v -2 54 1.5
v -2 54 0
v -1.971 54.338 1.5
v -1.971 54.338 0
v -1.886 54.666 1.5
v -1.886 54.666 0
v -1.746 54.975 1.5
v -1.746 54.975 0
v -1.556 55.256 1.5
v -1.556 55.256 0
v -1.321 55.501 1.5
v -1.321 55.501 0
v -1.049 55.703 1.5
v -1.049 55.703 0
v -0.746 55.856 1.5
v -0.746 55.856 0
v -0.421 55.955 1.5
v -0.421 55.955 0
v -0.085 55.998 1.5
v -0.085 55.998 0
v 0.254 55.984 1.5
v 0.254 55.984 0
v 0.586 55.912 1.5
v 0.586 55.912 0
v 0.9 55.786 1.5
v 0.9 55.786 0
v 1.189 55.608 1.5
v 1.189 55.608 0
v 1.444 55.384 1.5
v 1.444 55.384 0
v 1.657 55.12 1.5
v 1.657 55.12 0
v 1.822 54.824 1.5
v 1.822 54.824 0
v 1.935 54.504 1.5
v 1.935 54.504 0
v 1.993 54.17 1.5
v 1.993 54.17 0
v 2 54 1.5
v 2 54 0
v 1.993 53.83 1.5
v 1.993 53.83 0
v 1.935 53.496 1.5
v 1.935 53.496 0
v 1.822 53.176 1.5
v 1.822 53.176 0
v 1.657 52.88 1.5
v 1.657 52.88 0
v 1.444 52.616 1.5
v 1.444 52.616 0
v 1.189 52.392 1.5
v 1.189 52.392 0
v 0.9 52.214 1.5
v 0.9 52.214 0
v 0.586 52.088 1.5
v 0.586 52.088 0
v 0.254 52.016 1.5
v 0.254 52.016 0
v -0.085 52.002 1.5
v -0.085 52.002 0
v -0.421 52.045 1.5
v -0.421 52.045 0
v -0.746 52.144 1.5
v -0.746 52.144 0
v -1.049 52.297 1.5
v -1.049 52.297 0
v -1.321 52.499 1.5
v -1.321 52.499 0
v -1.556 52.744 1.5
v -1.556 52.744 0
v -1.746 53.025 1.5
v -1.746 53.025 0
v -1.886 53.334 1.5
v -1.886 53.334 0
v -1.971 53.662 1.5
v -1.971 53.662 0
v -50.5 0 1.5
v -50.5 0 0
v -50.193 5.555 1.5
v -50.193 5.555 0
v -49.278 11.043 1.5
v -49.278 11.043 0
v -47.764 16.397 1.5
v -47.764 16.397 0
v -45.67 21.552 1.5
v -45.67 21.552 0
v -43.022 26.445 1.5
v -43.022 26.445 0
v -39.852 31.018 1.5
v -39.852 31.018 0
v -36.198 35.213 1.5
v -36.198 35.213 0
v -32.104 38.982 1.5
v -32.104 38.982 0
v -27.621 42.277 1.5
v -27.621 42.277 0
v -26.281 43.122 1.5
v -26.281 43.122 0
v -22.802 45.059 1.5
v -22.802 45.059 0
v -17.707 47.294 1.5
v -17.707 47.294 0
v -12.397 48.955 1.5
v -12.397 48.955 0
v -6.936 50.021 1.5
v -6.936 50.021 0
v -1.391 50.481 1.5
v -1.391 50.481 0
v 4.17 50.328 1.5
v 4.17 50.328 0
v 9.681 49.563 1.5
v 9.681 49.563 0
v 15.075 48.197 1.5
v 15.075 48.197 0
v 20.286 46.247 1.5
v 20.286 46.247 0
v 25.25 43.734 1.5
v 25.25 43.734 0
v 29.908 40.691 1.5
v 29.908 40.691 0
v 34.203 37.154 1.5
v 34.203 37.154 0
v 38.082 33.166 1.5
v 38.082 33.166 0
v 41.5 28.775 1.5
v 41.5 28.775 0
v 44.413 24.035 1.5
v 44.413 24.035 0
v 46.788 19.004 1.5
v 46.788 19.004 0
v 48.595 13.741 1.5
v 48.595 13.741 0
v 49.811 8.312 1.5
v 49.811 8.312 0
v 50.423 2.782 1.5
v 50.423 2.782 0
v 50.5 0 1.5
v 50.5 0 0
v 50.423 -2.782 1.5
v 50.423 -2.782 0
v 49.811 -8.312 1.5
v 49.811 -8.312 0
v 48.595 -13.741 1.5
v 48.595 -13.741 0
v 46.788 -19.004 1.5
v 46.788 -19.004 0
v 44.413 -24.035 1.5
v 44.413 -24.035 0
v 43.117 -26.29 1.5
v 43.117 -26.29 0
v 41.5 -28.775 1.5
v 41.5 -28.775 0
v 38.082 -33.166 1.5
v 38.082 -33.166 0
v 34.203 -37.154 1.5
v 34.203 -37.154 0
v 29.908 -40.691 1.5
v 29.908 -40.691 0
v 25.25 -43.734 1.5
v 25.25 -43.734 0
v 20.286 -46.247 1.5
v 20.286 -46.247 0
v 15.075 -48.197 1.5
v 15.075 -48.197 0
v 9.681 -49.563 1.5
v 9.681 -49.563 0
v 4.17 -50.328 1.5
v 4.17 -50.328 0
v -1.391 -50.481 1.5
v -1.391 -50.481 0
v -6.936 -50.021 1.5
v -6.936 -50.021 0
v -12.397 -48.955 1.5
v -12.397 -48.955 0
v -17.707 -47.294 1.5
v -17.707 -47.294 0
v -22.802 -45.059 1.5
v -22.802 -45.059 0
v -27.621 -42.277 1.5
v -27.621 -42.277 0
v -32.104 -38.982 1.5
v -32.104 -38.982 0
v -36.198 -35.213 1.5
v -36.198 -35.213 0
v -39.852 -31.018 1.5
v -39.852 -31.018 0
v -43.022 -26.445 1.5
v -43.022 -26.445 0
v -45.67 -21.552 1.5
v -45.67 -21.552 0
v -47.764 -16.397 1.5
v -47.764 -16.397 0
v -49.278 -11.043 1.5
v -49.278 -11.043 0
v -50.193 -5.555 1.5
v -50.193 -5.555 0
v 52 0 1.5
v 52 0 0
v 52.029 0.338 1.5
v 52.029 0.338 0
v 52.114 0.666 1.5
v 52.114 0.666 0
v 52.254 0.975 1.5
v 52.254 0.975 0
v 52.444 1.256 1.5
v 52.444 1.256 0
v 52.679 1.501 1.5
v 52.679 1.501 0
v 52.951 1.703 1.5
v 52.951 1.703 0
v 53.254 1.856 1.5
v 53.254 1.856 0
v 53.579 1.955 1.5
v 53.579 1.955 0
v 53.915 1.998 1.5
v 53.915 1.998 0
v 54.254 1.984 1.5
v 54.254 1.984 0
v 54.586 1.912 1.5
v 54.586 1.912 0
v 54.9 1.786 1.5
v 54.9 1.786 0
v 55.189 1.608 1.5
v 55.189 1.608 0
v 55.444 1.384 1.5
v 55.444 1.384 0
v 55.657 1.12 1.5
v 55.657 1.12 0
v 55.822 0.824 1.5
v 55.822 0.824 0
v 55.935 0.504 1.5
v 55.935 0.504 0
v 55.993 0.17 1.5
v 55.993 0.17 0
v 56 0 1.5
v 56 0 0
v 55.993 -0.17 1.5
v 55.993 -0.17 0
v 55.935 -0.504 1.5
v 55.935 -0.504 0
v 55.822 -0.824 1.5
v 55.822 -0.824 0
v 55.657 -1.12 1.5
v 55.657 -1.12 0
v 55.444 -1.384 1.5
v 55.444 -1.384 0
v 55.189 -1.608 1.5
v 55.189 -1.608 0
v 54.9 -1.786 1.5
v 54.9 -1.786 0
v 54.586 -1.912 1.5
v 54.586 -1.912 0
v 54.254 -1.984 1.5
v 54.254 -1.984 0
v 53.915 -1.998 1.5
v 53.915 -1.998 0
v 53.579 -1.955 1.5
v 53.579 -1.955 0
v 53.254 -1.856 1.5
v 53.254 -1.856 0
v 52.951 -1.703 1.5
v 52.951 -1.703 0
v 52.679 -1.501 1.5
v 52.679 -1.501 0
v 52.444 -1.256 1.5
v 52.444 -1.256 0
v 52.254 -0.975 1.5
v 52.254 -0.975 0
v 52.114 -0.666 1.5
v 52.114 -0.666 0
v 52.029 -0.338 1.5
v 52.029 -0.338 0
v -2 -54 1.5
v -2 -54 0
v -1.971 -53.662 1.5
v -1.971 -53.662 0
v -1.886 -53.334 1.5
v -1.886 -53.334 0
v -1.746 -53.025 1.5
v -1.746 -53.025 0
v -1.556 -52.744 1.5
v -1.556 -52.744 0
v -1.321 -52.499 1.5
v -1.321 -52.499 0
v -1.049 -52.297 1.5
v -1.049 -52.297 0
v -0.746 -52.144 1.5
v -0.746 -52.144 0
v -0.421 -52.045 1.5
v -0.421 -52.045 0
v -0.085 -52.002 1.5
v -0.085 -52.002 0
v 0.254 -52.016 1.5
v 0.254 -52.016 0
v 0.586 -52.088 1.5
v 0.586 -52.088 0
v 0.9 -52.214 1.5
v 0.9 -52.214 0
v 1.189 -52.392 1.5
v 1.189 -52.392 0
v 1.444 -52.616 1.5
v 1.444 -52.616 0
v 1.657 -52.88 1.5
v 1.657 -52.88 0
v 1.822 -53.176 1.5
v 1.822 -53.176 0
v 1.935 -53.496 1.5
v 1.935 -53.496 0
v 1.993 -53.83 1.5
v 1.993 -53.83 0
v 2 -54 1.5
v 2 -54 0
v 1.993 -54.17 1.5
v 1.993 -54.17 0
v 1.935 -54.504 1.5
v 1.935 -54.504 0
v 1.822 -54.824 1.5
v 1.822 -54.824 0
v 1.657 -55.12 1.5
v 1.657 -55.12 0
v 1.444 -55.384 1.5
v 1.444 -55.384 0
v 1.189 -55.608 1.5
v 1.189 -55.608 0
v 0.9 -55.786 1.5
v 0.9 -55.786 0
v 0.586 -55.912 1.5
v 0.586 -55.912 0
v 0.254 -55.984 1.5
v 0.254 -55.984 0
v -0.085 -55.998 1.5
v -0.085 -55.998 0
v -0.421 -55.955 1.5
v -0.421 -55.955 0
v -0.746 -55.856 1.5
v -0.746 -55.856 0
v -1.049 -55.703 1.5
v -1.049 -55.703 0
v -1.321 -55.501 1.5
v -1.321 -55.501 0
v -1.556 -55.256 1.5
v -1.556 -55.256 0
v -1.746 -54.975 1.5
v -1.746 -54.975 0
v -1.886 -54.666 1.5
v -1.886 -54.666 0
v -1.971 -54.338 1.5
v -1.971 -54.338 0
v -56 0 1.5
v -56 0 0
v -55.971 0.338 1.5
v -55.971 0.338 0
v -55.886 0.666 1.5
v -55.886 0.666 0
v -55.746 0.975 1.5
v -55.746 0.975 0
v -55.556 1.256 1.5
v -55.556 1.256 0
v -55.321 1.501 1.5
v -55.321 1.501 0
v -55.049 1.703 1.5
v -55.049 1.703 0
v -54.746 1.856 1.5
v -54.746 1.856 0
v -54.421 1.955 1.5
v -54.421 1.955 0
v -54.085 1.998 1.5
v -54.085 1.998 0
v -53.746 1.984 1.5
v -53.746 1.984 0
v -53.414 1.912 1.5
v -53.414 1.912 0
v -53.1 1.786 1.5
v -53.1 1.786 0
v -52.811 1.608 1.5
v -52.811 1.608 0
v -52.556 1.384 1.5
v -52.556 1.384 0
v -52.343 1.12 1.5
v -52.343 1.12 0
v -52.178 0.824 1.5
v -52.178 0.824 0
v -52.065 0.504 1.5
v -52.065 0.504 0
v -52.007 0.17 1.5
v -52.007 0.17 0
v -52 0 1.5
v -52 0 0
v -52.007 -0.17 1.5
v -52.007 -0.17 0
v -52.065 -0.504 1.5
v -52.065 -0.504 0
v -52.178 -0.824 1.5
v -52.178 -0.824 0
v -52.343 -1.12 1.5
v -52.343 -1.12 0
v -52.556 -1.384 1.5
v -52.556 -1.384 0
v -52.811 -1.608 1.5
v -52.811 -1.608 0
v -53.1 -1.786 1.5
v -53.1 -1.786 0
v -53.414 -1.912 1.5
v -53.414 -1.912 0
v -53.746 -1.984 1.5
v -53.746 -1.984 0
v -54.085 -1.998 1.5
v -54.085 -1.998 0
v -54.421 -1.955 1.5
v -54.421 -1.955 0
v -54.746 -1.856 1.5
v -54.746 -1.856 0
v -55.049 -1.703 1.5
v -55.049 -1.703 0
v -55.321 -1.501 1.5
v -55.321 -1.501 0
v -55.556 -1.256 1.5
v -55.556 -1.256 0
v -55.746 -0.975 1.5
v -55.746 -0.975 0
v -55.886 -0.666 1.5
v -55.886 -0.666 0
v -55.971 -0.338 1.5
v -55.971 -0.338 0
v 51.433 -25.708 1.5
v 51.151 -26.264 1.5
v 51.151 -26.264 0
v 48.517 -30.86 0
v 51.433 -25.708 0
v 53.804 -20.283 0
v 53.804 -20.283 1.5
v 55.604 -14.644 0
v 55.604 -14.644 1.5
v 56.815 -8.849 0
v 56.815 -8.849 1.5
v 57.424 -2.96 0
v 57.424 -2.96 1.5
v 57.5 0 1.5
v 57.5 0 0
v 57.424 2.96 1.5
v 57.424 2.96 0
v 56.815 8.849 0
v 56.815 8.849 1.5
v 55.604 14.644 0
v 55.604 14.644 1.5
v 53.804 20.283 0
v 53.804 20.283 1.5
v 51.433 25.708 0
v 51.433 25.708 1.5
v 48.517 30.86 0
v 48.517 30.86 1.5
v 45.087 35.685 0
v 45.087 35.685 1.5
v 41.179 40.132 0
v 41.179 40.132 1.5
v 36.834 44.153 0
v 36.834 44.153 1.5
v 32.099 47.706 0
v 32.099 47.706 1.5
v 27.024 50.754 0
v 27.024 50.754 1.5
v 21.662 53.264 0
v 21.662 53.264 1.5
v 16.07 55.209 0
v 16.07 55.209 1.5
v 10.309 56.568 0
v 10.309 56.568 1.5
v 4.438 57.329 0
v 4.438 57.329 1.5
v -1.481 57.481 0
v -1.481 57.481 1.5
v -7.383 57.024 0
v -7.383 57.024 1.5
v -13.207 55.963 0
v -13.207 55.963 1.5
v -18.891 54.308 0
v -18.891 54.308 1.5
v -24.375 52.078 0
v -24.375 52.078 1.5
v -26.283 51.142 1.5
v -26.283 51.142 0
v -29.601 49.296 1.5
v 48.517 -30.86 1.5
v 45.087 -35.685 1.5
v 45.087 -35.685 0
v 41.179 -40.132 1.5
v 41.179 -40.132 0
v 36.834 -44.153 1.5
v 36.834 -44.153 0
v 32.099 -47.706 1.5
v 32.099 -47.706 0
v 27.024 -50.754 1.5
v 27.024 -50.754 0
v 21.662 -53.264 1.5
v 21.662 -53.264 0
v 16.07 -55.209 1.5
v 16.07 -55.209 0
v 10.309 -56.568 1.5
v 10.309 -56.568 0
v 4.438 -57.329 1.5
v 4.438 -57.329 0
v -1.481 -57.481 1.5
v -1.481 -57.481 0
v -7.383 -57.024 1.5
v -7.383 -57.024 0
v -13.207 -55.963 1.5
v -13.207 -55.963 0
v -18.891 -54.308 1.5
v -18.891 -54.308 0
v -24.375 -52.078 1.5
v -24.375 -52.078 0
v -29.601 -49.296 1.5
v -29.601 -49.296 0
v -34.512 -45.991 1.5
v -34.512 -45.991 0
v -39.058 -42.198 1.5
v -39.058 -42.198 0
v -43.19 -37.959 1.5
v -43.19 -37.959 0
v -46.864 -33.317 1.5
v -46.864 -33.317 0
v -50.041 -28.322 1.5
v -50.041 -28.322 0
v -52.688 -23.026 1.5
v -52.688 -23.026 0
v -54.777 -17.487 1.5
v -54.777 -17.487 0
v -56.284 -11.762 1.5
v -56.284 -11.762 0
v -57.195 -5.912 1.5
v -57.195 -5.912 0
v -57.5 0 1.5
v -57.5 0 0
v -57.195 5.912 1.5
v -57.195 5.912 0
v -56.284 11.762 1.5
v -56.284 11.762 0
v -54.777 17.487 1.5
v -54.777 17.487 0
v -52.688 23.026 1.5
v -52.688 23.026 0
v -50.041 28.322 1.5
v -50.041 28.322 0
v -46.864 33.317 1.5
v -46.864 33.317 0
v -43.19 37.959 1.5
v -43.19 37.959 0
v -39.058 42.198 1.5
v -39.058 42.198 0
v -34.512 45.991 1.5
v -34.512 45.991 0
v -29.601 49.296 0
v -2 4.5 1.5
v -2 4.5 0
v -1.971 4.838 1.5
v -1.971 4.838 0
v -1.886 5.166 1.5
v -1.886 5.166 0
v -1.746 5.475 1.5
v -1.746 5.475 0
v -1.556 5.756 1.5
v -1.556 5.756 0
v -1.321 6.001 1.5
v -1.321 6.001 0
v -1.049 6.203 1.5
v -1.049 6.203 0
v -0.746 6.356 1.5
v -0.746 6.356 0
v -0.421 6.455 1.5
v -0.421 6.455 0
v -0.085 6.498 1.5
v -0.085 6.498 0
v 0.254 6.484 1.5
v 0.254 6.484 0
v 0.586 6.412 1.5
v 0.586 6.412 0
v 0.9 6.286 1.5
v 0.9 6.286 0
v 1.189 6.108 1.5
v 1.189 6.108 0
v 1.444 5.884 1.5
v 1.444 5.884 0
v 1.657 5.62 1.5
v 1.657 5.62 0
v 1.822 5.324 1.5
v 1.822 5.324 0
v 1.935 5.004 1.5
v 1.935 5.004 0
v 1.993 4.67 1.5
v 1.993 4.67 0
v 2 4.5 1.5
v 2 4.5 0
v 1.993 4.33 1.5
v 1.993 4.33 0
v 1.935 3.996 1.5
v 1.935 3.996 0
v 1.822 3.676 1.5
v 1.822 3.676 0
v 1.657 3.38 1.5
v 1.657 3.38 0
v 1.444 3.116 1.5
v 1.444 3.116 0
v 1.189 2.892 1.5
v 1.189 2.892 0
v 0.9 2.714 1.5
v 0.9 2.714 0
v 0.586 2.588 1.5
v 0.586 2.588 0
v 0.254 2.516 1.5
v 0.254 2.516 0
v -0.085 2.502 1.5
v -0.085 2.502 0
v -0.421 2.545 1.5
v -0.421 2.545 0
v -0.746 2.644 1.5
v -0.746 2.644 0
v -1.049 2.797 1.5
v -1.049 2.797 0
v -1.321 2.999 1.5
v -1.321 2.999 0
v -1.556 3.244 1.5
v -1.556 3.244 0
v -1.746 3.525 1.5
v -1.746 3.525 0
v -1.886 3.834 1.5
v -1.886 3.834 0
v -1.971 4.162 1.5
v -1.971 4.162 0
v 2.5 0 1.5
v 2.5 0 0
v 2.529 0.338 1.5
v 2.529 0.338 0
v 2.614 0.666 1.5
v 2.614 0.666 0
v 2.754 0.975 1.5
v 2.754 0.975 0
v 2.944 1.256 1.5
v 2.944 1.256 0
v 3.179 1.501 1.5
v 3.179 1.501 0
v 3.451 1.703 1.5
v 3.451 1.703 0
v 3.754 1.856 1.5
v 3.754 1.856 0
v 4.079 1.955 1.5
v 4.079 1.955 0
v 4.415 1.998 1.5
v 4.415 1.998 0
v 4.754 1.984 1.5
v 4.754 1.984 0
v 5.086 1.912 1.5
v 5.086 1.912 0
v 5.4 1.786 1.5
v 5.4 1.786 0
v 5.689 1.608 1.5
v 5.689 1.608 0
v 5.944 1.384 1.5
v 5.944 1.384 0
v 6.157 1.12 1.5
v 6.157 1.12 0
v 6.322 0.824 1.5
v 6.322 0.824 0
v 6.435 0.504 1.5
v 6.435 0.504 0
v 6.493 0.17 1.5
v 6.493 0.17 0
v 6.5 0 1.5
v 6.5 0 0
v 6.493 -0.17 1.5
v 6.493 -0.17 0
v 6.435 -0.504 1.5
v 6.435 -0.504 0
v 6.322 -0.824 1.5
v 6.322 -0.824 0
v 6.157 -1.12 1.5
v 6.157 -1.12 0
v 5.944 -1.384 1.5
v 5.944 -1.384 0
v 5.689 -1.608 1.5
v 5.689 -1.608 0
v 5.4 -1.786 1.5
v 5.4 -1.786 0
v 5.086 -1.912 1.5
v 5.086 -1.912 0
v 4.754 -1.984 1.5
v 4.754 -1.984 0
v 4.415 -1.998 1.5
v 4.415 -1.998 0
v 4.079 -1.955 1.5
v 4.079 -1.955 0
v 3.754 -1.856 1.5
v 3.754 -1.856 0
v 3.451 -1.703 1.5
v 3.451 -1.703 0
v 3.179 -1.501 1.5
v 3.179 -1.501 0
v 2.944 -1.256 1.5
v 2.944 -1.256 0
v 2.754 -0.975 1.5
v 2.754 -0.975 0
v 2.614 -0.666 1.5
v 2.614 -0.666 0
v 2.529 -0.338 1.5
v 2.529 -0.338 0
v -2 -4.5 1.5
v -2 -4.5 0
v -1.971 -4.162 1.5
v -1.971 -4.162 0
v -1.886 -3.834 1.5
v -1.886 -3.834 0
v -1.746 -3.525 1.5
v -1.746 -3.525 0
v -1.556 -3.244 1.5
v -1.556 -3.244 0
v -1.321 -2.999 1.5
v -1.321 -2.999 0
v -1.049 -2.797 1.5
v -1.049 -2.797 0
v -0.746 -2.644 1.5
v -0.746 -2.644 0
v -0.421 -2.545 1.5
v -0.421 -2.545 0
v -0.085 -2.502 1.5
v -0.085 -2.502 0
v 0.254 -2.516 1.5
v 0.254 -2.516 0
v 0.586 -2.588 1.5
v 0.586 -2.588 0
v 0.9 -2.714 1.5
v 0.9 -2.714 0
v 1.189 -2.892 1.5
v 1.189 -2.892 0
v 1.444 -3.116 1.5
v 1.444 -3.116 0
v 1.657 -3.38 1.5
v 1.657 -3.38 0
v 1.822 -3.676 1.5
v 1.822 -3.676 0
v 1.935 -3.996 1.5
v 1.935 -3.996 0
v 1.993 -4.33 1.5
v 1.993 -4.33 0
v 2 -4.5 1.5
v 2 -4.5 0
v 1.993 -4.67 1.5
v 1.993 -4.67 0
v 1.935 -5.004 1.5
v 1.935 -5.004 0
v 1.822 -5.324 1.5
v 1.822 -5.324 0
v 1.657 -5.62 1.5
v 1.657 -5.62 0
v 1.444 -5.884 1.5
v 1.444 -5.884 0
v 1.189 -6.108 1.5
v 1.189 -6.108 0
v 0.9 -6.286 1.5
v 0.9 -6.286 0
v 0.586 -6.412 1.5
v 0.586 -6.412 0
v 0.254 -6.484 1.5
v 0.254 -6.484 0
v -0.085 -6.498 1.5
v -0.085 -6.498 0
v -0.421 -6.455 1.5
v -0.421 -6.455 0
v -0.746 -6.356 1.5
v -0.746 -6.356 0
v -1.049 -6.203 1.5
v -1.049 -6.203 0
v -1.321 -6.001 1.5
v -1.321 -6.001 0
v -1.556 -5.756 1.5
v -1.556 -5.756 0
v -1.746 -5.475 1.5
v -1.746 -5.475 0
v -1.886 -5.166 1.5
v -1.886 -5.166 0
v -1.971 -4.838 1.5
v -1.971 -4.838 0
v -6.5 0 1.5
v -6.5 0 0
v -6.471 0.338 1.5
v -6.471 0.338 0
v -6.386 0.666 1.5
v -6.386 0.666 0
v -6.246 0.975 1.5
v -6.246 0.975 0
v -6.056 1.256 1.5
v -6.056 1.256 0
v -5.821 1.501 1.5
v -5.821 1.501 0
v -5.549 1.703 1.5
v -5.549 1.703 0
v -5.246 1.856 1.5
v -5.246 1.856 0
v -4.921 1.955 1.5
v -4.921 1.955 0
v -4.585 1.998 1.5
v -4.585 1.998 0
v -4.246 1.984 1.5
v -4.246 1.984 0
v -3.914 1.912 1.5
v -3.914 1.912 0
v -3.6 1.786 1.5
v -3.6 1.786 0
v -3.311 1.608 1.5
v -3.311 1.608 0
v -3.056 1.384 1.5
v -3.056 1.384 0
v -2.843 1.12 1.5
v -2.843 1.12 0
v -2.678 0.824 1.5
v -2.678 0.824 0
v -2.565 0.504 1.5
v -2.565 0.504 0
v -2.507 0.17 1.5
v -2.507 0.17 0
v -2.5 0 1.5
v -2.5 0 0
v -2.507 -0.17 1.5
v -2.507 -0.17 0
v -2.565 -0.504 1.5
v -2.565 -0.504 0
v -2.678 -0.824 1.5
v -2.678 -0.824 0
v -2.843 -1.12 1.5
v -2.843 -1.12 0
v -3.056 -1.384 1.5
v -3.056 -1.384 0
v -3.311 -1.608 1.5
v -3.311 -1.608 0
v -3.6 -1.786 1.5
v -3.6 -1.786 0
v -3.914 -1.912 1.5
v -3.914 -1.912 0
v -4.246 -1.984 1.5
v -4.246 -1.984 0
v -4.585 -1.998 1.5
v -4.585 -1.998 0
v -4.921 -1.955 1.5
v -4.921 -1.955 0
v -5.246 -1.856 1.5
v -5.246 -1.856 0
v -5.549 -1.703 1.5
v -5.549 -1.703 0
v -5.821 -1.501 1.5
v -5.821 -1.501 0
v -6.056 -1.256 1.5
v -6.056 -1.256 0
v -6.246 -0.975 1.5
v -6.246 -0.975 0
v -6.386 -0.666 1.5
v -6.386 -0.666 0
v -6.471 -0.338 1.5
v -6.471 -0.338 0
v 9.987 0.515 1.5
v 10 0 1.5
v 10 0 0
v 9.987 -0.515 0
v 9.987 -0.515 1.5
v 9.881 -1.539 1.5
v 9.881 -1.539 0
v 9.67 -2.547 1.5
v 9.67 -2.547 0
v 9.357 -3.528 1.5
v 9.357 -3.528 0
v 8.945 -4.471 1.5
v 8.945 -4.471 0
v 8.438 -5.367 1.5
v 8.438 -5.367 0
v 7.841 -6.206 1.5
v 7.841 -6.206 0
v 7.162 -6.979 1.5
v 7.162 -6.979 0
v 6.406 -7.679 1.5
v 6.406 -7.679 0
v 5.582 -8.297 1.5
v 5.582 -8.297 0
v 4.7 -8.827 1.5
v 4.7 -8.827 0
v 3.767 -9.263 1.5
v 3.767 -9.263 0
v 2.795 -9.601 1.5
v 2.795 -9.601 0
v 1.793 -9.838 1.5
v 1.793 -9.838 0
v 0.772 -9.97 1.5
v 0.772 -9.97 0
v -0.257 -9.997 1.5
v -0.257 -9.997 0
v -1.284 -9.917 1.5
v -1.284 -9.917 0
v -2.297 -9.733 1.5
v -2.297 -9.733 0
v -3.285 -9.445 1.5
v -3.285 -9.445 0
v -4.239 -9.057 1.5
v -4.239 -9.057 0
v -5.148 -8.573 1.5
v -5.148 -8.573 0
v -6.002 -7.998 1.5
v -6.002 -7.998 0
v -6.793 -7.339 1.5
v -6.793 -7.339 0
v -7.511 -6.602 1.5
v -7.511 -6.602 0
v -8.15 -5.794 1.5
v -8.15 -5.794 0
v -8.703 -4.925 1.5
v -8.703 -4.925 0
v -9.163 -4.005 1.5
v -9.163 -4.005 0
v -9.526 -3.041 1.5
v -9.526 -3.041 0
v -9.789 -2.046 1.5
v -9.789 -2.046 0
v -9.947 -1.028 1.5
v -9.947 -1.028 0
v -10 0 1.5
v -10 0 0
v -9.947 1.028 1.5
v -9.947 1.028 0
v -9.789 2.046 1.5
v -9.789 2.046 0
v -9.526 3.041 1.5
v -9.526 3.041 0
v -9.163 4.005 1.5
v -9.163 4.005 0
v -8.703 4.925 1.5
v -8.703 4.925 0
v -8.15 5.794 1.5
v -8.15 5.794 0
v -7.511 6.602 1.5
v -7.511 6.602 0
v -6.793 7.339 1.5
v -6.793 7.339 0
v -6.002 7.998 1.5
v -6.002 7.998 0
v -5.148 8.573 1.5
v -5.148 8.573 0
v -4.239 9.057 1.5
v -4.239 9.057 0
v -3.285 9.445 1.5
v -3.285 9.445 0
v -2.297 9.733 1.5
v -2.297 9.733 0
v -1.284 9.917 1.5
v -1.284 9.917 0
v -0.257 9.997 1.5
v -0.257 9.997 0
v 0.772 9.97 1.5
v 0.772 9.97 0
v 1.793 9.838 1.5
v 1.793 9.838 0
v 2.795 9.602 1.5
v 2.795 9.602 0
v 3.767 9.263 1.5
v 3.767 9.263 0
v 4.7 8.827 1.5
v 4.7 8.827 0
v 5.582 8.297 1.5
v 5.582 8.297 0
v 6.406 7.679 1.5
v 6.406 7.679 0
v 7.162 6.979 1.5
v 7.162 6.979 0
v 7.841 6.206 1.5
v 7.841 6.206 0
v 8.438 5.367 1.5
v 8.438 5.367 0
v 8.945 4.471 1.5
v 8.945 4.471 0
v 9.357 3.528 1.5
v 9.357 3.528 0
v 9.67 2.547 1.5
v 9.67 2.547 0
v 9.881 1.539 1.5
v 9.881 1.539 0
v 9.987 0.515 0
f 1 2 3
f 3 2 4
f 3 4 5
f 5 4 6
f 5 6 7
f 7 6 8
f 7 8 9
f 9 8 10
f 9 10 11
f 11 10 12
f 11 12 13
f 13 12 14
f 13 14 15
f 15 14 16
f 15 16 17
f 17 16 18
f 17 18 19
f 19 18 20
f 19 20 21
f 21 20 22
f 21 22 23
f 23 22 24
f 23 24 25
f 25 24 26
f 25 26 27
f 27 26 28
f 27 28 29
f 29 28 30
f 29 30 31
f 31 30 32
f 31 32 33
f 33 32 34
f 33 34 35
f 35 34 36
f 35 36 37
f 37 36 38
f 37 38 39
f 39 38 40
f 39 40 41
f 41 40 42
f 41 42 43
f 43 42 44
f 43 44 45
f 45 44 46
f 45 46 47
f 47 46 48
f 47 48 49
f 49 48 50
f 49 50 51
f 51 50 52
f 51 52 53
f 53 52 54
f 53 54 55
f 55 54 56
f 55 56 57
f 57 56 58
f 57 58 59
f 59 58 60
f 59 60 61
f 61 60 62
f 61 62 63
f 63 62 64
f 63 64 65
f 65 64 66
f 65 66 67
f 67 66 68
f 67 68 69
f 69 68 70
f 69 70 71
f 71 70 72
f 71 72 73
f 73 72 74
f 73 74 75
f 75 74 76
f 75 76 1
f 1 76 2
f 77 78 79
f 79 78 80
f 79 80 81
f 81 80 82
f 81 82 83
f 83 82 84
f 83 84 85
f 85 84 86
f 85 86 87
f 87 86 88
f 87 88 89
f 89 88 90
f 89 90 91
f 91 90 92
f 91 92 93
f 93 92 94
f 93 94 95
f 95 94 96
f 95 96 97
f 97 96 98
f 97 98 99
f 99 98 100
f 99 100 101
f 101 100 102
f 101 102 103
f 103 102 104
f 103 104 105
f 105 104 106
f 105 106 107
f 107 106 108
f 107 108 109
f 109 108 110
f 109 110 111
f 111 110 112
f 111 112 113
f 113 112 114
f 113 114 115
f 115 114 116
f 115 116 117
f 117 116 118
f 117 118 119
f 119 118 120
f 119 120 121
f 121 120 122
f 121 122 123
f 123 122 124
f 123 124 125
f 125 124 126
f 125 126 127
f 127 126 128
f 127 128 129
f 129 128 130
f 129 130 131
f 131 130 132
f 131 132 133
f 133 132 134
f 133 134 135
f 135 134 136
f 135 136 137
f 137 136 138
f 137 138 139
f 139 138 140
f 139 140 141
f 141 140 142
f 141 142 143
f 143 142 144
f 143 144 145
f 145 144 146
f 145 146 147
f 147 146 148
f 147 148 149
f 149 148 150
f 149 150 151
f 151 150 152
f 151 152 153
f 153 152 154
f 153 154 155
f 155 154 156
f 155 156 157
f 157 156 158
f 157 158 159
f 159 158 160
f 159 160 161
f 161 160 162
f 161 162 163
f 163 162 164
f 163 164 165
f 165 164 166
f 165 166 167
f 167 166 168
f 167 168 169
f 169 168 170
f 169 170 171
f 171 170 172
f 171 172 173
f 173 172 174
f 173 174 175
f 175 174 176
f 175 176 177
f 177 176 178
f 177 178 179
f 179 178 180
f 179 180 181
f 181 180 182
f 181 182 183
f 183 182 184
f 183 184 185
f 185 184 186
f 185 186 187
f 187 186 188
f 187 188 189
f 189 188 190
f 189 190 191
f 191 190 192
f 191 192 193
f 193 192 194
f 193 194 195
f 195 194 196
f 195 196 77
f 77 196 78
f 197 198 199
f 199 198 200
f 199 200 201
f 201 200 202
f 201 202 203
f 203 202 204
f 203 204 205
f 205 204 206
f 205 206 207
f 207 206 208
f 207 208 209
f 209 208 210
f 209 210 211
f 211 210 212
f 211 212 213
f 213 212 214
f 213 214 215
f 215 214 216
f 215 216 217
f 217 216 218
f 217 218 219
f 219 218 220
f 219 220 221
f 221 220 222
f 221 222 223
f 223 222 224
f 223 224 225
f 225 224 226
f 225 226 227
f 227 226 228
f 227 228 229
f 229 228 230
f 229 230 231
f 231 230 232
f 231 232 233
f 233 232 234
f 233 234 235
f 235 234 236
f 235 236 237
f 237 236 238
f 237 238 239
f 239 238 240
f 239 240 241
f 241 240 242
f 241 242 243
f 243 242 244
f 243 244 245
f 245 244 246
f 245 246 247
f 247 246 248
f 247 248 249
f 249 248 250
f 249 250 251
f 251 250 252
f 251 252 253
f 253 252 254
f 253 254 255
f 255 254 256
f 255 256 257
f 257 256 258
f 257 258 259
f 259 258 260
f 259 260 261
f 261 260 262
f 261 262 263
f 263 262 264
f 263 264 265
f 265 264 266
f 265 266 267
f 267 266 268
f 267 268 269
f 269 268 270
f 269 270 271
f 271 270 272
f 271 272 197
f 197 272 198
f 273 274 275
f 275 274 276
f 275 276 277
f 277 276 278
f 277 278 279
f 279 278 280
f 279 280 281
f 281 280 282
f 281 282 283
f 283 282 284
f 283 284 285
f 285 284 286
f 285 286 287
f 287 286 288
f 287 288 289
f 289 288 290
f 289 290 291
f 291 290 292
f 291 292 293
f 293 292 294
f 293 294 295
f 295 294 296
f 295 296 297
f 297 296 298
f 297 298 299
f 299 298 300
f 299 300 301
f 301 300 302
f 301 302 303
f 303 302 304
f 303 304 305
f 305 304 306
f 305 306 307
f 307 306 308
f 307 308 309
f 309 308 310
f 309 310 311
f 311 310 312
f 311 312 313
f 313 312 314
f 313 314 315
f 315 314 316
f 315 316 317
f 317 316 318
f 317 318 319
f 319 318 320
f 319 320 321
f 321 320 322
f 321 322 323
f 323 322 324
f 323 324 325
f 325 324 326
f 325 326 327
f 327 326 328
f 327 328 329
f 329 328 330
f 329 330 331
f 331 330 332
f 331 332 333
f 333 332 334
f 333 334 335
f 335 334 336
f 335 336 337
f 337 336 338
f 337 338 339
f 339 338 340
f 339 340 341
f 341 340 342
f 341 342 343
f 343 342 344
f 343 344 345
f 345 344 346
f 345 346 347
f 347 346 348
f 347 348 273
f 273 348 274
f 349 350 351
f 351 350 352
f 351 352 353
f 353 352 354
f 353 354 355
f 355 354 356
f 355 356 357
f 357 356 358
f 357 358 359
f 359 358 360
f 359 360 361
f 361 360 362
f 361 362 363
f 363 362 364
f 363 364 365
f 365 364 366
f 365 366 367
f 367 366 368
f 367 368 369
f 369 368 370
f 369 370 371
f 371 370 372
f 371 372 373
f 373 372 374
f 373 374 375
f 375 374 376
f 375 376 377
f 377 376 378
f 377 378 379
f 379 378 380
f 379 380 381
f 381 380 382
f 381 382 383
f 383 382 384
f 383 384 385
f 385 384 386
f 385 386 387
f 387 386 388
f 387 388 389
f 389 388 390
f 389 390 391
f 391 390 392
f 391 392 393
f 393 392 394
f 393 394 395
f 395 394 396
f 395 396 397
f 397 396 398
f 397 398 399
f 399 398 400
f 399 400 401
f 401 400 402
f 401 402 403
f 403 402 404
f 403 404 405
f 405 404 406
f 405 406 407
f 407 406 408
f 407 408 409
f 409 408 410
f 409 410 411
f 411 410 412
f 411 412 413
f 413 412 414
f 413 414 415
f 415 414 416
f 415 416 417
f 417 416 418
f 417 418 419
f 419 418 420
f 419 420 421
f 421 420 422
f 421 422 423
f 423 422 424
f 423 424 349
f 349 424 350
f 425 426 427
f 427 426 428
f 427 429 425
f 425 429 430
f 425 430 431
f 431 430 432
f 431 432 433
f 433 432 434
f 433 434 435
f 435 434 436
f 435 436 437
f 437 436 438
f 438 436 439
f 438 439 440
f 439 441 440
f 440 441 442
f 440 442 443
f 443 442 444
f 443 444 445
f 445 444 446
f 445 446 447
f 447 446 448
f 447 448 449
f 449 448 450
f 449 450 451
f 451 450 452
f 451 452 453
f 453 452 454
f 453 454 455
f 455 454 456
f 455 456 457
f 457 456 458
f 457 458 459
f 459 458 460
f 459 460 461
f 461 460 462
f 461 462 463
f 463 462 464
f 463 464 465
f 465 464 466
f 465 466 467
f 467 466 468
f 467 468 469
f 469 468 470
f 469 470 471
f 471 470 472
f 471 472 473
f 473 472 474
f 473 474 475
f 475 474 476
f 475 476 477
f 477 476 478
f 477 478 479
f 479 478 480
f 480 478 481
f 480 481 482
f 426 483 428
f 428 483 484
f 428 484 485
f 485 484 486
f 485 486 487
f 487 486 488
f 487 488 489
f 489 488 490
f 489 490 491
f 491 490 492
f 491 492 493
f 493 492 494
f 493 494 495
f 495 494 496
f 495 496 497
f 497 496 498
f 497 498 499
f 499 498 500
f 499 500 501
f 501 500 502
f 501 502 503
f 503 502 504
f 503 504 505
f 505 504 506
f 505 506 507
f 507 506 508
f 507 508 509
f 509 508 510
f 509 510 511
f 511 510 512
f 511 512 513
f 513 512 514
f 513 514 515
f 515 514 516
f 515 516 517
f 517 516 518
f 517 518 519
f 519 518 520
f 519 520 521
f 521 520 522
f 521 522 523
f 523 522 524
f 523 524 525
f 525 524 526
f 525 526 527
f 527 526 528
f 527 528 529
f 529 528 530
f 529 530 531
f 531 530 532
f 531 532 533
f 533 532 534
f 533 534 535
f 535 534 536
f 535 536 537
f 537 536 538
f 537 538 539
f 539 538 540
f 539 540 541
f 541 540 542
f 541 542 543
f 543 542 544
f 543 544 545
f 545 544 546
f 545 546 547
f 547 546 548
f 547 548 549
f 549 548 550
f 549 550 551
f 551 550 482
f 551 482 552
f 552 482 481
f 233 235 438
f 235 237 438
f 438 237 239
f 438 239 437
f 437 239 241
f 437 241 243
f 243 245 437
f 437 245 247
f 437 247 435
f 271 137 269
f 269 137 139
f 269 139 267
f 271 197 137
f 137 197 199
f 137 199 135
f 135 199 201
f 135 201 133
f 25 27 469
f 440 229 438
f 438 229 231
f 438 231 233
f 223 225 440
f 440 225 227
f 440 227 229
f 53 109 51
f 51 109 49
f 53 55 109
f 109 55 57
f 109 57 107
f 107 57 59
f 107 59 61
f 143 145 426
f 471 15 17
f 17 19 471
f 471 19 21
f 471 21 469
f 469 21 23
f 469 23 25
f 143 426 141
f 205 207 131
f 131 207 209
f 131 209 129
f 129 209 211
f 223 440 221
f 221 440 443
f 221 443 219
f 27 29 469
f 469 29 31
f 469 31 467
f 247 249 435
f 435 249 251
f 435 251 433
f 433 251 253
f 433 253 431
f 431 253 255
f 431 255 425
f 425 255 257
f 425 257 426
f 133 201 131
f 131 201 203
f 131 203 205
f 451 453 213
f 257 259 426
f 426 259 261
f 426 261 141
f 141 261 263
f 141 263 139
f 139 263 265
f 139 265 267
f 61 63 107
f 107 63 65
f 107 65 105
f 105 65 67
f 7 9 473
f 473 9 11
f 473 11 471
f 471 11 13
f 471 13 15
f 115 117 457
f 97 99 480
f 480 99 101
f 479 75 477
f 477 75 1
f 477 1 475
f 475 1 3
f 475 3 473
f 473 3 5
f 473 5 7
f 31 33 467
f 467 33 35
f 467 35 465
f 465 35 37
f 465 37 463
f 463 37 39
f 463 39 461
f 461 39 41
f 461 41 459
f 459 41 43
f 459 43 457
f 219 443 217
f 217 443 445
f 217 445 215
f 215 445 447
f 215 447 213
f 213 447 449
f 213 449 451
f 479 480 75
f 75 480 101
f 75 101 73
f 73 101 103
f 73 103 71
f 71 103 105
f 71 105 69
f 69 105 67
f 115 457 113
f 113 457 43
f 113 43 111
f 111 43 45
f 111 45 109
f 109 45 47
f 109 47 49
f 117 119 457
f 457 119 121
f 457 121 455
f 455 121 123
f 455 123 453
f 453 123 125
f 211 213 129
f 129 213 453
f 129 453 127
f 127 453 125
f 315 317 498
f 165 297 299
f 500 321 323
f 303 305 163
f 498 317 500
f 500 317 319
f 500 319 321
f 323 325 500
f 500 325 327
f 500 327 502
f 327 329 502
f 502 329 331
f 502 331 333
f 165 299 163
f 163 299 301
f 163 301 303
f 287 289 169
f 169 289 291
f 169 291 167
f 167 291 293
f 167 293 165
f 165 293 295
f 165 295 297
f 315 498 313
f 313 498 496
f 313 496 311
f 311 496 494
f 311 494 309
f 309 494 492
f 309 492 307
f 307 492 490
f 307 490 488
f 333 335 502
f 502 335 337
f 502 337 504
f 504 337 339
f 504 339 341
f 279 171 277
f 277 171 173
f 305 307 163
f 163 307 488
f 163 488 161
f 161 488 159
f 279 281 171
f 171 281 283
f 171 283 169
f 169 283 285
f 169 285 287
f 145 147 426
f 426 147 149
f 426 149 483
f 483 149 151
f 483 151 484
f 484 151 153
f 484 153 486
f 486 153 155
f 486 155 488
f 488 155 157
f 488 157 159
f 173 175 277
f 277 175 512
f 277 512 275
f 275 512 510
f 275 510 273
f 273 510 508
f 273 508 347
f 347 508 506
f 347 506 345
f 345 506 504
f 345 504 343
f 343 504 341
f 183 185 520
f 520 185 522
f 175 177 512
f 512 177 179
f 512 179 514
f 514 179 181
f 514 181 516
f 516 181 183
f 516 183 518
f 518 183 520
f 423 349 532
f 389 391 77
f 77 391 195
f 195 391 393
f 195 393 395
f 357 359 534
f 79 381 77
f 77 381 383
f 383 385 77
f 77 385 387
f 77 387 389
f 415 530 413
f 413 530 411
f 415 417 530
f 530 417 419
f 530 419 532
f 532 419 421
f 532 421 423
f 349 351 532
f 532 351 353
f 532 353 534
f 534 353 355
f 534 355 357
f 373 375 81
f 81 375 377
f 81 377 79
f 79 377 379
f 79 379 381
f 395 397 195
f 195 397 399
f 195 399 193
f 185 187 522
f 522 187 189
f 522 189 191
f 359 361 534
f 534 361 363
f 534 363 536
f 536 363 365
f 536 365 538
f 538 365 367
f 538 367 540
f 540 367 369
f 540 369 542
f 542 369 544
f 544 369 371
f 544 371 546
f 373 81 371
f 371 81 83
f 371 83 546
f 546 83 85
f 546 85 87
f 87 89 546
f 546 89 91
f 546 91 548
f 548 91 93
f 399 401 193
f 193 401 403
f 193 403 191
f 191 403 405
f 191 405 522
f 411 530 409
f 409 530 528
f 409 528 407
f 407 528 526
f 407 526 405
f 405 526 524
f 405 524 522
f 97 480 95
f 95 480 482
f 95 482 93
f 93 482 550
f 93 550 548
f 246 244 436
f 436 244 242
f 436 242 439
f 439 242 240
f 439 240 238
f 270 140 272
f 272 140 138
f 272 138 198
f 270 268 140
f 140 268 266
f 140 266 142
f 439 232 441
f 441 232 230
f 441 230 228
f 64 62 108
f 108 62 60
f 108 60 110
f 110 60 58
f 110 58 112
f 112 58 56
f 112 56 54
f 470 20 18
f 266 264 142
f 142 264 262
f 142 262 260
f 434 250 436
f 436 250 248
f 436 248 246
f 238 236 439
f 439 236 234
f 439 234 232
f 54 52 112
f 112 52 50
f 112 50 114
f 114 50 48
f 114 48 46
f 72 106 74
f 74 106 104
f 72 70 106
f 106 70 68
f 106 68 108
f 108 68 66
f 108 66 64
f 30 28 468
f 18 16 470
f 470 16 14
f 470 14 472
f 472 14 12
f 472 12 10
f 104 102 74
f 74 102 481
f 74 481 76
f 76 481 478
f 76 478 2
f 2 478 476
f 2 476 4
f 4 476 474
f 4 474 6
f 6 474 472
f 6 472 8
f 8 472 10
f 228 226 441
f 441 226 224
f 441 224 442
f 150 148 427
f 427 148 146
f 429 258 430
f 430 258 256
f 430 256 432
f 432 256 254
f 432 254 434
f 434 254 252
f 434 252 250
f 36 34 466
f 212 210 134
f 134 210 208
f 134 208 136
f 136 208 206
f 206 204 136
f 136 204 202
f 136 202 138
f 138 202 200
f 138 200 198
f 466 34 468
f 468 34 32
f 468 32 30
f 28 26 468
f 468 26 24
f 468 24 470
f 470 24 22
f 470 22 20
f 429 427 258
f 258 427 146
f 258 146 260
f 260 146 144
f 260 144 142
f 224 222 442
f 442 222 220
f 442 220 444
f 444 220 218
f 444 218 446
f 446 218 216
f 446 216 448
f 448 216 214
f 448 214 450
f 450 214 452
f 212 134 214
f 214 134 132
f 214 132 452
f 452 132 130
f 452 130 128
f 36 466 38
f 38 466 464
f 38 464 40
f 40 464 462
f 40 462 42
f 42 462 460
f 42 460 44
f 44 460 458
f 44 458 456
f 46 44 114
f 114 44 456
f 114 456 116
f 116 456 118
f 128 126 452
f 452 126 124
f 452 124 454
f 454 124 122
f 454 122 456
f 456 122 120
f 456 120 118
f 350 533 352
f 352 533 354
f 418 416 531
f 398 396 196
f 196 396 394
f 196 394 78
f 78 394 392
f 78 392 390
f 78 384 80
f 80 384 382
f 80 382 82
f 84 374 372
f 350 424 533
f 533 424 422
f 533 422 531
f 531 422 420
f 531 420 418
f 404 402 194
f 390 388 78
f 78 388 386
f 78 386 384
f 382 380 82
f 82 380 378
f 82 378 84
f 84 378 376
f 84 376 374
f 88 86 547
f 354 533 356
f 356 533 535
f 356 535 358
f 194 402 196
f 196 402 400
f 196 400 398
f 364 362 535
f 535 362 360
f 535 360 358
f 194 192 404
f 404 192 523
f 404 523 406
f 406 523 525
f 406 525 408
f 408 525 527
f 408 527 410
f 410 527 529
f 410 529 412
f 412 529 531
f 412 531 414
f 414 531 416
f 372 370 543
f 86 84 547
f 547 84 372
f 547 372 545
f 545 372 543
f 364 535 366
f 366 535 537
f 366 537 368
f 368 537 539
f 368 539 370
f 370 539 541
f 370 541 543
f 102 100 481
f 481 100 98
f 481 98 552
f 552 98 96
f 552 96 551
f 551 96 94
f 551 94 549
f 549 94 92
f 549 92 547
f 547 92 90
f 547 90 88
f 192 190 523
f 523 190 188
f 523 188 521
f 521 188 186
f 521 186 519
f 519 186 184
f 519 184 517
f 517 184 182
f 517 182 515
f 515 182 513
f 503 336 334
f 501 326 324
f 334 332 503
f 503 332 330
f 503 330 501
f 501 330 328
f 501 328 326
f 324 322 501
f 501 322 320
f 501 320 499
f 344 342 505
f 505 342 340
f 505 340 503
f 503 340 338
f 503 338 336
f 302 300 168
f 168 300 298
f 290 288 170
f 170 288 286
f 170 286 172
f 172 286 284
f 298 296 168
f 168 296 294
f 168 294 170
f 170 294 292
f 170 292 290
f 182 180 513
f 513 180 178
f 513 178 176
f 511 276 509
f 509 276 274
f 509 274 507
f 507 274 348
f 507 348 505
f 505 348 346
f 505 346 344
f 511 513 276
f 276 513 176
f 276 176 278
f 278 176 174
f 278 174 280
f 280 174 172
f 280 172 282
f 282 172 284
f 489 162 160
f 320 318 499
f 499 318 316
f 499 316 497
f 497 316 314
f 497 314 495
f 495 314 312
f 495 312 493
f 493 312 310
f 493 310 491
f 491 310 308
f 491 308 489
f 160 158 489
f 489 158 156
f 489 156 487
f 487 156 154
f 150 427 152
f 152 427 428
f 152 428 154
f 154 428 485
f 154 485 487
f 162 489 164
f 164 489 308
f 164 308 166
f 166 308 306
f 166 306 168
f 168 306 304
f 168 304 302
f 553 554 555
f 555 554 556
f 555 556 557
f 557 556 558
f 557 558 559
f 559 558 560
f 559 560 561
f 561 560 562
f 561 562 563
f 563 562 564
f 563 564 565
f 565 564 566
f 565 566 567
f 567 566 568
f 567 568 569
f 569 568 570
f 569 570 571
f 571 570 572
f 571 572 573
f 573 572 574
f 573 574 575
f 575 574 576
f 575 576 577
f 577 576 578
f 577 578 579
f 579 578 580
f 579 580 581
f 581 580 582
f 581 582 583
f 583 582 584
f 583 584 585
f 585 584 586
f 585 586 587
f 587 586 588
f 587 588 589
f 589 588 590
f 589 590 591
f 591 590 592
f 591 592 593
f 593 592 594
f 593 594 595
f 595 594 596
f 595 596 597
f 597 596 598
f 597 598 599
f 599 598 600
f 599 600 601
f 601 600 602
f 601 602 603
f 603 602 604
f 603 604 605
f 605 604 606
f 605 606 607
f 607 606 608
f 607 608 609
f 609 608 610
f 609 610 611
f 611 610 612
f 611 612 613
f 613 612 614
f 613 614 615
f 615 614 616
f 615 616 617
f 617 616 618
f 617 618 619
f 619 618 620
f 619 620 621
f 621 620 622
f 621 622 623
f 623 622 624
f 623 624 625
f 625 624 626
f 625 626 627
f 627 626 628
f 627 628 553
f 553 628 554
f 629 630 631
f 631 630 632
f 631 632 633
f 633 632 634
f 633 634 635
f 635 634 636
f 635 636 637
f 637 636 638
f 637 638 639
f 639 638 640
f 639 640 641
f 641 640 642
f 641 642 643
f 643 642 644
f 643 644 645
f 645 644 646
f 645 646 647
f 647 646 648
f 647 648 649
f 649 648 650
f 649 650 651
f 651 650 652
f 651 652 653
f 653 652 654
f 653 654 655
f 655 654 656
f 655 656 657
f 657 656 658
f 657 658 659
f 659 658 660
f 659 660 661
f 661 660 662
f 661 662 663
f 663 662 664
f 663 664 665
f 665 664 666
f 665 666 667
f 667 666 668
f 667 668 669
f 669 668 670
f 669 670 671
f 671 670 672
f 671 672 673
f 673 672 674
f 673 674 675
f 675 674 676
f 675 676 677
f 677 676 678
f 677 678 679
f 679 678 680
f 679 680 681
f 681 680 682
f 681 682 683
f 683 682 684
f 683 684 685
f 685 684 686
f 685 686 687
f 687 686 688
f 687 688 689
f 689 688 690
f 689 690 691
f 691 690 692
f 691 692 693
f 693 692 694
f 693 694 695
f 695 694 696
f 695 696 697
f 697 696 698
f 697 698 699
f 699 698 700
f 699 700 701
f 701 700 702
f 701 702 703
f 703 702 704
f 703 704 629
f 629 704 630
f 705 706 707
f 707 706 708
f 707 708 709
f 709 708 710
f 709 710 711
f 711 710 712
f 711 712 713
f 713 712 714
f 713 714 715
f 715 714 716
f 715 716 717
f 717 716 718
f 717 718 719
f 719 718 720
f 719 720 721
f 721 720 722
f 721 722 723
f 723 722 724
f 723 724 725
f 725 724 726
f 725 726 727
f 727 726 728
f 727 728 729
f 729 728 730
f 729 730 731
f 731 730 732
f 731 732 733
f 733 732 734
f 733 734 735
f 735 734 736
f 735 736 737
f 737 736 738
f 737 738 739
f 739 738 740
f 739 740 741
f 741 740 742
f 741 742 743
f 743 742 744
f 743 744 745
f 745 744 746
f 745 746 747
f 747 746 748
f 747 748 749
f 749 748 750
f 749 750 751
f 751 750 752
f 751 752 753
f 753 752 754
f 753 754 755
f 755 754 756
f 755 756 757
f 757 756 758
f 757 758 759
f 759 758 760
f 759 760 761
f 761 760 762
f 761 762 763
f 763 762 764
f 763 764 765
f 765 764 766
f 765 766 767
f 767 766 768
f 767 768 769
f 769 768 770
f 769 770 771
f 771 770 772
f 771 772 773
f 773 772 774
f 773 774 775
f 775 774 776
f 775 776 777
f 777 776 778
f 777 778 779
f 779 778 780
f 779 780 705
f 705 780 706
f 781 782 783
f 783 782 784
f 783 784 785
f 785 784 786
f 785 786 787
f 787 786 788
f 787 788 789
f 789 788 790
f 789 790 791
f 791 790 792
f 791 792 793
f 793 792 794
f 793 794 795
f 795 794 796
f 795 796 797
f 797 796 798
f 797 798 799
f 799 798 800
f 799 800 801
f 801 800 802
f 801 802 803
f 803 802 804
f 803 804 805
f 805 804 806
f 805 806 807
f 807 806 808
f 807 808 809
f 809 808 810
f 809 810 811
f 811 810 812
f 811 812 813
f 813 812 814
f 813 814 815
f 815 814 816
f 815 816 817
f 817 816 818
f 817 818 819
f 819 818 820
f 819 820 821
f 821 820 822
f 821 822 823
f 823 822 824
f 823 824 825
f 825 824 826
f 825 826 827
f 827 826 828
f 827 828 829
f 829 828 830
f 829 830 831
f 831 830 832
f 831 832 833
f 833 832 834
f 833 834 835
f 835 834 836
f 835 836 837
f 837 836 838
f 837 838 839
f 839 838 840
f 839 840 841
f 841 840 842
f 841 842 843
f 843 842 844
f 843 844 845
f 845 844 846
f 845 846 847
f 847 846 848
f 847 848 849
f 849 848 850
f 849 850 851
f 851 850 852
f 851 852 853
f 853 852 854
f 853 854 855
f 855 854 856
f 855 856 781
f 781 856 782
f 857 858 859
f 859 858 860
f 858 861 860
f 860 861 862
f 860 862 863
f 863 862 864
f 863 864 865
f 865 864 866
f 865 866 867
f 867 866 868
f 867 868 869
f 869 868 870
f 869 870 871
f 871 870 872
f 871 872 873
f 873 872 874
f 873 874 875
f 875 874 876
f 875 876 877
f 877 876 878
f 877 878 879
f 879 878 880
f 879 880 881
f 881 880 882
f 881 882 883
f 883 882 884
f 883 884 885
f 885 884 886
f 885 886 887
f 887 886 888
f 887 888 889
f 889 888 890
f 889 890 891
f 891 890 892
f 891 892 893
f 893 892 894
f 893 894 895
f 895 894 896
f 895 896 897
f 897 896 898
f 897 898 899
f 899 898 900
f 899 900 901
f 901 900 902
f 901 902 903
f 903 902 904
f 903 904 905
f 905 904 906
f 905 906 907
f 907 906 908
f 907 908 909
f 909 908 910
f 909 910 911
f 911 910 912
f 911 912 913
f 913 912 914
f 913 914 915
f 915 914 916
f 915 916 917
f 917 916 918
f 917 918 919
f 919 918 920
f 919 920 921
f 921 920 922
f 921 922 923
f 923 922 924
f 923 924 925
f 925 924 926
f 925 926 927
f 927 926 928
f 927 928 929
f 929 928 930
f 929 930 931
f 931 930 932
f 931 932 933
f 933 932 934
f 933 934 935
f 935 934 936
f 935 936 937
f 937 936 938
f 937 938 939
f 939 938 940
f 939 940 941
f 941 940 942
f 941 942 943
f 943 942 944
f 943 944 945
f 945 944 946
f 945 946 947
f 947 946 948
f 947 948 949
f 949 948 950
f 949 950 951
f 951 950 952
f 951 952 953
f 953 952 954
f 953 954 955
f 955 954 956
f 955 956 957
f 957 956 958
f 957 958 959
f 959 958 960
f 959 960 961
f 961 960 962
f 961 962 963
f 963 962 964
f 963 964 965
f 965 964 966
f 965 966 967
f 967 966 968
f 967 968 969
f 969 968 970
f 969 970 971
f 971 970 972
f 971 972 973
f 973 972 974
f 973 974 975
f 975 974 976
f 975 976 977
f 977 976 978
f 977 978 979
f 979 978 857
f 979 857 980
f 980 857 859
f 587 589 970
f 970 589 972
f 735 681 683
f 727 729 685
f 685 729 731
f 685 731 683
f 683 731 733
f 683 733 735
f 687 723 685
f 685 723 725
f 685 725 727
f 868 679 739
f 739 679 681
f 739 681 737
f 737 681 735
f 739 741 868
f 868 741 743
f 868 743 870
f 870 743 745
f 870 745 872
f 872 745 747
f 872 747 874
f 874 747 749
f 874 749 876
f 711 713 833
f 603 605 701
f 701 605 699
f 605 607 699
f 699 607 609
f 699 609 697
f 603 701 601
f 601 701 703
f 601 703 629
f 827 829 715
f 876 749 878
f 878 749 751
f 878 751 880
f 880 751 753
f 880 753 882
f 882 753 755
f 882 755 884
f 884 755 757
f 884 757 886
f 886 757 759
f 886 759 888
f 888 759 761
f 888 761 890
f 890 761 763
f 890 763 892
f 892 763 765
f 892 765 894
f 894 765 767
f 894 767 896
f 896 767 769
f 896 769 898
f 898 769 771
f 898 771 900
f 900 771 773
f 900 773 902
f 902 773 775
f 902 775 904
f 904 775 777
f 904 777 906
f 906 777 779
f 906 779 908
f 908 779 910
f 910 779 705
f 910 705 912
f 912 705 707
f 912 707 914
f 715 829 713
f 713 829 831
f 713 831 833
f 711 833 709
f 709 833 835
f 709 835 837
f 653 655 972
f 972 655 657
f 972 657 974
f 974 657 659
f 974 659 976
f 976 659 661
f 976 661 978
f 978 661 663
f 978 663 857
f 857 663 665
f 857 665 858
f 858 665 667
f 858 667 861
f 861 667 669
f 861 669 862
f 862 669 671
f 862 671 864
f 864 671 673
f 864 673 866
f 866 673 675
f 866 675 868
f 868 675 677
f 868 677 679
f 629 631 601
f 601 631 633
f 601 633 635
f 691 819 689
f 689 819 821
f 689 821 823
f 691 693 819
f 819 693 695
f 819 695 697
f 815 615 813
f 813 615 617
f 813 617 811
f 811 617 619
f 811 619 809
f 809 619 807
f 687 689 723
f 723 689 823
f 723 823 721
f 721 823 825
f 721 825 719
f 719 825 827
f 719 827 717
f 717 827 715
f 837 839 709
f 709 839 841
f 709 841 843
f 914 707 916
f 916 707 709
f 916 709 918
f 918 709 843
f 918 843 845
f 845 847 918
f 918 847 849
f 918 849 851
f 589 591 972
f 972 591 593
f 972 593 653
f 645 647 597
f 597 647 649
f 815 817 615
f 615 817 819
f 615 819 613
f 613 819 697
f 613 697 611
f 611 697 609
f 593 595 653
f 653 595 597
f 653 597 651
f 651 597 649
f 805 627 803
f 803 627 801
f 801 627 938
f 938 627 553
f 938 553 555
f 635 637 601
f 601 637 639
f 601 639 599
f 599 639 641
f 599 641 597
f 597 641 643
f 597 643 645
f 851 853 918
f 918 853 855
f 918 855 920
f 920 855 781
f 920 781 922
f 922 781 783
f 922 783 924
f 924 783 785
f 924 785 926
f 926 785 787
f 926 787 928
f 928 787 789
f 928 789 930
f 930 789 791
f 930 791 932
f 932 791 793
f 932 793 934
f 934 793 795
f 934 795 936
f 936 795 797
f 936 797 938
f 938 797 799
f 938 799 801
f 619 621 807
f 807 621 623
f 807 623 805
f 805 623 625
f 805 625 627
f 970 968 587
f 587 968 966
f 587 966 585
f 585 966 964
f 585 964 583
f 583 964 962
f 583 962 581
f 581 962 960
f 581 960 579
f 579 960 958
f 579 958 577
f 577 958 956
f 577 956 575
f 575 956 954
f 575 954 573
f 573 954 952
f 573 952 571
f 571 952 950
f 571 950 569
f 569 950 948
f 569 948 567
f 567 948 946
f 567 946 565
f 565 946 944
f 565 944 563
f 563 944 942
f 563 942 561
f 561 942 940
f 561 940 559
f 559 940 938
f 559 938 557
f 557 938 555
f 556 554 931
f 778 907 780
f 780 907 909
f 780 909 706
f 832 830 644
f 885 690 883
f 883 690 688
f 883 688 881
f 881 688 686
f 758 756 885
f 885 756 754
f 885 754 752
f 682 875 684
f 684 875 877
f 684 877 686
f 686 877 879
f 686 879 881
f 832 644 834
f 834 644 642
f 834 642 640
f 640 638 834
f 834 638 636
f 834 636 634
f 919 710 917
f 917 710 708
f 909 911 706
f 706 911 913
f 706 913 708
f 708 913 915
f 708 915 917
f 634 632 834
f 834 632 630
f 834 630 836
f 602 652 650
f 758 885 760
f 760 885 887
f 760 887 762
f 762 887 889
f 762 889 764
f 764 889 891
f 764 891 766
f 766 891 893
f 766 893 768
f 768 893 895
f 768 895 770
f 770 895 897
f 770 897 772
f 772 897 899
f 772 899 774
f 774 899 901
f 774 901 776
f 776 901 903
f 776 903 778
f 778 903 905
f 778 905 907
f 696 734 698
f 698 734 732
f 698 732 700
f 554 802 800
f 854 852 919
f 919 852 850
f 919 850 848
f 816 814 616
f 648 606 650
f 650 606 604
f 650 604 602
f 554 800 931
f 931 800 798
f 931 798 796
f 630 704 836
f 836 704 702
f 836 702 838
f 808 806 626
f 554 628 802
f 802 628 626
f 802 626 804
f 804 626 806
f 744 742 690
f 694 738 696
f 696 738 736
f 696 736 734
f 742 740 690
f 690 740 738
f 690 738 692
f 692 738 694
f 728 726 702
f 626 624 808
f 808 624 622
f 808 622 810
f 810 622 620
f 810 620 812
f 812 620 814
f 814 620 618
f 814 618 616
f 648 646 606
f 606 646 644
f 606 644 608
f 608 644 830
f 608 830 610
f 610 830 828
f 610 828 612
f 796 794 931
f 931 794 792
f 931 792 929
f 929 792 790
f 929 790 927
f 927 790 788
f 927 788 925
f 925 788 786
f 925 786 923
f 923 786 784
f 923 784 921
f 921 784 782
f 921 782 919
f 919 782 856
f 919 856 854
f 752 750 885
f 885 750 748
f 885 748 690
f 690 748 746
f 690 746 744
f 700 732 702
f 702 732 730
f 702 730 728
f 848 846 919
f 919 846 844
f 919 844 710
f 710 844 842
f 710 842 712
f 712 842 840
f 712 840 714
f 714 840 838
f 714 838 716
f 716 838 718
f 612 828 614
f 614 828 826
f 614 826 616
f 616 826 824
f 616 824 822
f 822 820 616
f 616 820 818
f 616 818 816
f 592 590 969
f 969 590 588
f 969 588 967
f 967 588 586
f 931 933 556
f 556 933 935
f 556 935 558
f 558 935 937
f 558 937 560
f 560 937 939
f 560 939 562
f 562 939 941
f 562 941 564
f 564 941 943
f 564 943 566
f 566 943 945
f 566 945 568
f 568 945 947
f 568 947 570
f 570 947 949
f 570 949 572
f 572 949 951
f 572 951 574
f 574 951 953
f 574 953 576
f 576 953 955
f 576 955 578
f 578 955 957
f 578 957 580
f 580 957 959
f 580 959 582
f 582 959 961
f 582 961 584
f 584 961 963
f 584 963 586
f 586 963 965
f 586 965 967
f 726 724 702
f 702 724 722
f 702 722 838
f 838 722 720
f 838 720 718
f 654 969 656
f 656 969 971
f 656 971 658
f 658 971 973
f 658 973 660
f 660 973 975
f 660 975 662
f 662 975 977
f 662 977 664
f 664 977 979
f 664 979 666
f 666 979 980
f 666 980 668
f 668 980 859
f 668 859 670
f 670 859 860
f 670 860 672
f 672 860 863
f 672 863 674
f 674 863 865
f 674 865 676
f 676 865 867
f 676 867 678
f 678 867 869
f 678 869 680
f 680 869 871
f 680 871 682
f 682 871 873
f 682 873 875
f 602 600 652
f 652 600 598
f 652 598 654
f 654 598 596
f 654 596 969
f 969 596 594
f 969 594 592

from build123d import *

# Parameters (mm, degrees)
CROQUIS1_R                = 57.5
CROQUIS1_R_2              = 2
CROQUIS1_R_3              = 50.5
SALIENTE_EXTRUIR1_DEPTH   = 1.5
CROQUIS1_R_4              = 10
SALIENTE_EXTRUIR1_2_DEPTH = 1.5


with BuildPart() as part:
    # Croquis1 → Saliente-Extruir1 (new body)
    with BuildSketch(Plane.XY):
        Circle(CROQUIS1_R)
        with Locations((-54, 0)):
            Circle(CROQUIS1_R_2, mode=Mode.SUBTRACT)
        with Locations((0, -54)):
            Circle(CROQUIS1_R_2, mode=Mode.SUBTRACT)
        with Locations((54, 0)):
            Circle(CROQUIS1_R_2, mode=Mode.SUBTRACT)
        Circle(CROQUIS1_R_3, mode=Mode.SUBTRACT)
        with Locations((0, 54)):
            Circle(CROQUIS1_R_2, mode=Mode.SUBTRACT)
    extrude(amount=SALIENTE_EXTRUIR1_DEPTH)


with BuildPart() as body_2:
    # Croquis1 → Saliente-Extruir1 2 (new body)
    with BuildSketch(Plane.XY):
        Circle(CROQUIS1_R_4)
        with Locations((-4.5, 0)):
            Circle(CROQUIS1_R_2, mode=Mode.SUBTRACT)
        with Locations((0, -4.5)):
            Circle(CROQUIS1_R_2, mode=Mode.SUBTRACT)
        with Locations((4.5, 0)):
            Circle(CROQUIS1_R_2, mode=Mode.SUBTRACT)
        with Locations((0, 4.5)):
            Circle(CROQUIS1_R_2, mode=Mode.SUBTRACT)
    extrude(amount=SALIENTE_EXTRUIR1_2_DEPTH)


solid = Compound([part.part, body_2.part])
